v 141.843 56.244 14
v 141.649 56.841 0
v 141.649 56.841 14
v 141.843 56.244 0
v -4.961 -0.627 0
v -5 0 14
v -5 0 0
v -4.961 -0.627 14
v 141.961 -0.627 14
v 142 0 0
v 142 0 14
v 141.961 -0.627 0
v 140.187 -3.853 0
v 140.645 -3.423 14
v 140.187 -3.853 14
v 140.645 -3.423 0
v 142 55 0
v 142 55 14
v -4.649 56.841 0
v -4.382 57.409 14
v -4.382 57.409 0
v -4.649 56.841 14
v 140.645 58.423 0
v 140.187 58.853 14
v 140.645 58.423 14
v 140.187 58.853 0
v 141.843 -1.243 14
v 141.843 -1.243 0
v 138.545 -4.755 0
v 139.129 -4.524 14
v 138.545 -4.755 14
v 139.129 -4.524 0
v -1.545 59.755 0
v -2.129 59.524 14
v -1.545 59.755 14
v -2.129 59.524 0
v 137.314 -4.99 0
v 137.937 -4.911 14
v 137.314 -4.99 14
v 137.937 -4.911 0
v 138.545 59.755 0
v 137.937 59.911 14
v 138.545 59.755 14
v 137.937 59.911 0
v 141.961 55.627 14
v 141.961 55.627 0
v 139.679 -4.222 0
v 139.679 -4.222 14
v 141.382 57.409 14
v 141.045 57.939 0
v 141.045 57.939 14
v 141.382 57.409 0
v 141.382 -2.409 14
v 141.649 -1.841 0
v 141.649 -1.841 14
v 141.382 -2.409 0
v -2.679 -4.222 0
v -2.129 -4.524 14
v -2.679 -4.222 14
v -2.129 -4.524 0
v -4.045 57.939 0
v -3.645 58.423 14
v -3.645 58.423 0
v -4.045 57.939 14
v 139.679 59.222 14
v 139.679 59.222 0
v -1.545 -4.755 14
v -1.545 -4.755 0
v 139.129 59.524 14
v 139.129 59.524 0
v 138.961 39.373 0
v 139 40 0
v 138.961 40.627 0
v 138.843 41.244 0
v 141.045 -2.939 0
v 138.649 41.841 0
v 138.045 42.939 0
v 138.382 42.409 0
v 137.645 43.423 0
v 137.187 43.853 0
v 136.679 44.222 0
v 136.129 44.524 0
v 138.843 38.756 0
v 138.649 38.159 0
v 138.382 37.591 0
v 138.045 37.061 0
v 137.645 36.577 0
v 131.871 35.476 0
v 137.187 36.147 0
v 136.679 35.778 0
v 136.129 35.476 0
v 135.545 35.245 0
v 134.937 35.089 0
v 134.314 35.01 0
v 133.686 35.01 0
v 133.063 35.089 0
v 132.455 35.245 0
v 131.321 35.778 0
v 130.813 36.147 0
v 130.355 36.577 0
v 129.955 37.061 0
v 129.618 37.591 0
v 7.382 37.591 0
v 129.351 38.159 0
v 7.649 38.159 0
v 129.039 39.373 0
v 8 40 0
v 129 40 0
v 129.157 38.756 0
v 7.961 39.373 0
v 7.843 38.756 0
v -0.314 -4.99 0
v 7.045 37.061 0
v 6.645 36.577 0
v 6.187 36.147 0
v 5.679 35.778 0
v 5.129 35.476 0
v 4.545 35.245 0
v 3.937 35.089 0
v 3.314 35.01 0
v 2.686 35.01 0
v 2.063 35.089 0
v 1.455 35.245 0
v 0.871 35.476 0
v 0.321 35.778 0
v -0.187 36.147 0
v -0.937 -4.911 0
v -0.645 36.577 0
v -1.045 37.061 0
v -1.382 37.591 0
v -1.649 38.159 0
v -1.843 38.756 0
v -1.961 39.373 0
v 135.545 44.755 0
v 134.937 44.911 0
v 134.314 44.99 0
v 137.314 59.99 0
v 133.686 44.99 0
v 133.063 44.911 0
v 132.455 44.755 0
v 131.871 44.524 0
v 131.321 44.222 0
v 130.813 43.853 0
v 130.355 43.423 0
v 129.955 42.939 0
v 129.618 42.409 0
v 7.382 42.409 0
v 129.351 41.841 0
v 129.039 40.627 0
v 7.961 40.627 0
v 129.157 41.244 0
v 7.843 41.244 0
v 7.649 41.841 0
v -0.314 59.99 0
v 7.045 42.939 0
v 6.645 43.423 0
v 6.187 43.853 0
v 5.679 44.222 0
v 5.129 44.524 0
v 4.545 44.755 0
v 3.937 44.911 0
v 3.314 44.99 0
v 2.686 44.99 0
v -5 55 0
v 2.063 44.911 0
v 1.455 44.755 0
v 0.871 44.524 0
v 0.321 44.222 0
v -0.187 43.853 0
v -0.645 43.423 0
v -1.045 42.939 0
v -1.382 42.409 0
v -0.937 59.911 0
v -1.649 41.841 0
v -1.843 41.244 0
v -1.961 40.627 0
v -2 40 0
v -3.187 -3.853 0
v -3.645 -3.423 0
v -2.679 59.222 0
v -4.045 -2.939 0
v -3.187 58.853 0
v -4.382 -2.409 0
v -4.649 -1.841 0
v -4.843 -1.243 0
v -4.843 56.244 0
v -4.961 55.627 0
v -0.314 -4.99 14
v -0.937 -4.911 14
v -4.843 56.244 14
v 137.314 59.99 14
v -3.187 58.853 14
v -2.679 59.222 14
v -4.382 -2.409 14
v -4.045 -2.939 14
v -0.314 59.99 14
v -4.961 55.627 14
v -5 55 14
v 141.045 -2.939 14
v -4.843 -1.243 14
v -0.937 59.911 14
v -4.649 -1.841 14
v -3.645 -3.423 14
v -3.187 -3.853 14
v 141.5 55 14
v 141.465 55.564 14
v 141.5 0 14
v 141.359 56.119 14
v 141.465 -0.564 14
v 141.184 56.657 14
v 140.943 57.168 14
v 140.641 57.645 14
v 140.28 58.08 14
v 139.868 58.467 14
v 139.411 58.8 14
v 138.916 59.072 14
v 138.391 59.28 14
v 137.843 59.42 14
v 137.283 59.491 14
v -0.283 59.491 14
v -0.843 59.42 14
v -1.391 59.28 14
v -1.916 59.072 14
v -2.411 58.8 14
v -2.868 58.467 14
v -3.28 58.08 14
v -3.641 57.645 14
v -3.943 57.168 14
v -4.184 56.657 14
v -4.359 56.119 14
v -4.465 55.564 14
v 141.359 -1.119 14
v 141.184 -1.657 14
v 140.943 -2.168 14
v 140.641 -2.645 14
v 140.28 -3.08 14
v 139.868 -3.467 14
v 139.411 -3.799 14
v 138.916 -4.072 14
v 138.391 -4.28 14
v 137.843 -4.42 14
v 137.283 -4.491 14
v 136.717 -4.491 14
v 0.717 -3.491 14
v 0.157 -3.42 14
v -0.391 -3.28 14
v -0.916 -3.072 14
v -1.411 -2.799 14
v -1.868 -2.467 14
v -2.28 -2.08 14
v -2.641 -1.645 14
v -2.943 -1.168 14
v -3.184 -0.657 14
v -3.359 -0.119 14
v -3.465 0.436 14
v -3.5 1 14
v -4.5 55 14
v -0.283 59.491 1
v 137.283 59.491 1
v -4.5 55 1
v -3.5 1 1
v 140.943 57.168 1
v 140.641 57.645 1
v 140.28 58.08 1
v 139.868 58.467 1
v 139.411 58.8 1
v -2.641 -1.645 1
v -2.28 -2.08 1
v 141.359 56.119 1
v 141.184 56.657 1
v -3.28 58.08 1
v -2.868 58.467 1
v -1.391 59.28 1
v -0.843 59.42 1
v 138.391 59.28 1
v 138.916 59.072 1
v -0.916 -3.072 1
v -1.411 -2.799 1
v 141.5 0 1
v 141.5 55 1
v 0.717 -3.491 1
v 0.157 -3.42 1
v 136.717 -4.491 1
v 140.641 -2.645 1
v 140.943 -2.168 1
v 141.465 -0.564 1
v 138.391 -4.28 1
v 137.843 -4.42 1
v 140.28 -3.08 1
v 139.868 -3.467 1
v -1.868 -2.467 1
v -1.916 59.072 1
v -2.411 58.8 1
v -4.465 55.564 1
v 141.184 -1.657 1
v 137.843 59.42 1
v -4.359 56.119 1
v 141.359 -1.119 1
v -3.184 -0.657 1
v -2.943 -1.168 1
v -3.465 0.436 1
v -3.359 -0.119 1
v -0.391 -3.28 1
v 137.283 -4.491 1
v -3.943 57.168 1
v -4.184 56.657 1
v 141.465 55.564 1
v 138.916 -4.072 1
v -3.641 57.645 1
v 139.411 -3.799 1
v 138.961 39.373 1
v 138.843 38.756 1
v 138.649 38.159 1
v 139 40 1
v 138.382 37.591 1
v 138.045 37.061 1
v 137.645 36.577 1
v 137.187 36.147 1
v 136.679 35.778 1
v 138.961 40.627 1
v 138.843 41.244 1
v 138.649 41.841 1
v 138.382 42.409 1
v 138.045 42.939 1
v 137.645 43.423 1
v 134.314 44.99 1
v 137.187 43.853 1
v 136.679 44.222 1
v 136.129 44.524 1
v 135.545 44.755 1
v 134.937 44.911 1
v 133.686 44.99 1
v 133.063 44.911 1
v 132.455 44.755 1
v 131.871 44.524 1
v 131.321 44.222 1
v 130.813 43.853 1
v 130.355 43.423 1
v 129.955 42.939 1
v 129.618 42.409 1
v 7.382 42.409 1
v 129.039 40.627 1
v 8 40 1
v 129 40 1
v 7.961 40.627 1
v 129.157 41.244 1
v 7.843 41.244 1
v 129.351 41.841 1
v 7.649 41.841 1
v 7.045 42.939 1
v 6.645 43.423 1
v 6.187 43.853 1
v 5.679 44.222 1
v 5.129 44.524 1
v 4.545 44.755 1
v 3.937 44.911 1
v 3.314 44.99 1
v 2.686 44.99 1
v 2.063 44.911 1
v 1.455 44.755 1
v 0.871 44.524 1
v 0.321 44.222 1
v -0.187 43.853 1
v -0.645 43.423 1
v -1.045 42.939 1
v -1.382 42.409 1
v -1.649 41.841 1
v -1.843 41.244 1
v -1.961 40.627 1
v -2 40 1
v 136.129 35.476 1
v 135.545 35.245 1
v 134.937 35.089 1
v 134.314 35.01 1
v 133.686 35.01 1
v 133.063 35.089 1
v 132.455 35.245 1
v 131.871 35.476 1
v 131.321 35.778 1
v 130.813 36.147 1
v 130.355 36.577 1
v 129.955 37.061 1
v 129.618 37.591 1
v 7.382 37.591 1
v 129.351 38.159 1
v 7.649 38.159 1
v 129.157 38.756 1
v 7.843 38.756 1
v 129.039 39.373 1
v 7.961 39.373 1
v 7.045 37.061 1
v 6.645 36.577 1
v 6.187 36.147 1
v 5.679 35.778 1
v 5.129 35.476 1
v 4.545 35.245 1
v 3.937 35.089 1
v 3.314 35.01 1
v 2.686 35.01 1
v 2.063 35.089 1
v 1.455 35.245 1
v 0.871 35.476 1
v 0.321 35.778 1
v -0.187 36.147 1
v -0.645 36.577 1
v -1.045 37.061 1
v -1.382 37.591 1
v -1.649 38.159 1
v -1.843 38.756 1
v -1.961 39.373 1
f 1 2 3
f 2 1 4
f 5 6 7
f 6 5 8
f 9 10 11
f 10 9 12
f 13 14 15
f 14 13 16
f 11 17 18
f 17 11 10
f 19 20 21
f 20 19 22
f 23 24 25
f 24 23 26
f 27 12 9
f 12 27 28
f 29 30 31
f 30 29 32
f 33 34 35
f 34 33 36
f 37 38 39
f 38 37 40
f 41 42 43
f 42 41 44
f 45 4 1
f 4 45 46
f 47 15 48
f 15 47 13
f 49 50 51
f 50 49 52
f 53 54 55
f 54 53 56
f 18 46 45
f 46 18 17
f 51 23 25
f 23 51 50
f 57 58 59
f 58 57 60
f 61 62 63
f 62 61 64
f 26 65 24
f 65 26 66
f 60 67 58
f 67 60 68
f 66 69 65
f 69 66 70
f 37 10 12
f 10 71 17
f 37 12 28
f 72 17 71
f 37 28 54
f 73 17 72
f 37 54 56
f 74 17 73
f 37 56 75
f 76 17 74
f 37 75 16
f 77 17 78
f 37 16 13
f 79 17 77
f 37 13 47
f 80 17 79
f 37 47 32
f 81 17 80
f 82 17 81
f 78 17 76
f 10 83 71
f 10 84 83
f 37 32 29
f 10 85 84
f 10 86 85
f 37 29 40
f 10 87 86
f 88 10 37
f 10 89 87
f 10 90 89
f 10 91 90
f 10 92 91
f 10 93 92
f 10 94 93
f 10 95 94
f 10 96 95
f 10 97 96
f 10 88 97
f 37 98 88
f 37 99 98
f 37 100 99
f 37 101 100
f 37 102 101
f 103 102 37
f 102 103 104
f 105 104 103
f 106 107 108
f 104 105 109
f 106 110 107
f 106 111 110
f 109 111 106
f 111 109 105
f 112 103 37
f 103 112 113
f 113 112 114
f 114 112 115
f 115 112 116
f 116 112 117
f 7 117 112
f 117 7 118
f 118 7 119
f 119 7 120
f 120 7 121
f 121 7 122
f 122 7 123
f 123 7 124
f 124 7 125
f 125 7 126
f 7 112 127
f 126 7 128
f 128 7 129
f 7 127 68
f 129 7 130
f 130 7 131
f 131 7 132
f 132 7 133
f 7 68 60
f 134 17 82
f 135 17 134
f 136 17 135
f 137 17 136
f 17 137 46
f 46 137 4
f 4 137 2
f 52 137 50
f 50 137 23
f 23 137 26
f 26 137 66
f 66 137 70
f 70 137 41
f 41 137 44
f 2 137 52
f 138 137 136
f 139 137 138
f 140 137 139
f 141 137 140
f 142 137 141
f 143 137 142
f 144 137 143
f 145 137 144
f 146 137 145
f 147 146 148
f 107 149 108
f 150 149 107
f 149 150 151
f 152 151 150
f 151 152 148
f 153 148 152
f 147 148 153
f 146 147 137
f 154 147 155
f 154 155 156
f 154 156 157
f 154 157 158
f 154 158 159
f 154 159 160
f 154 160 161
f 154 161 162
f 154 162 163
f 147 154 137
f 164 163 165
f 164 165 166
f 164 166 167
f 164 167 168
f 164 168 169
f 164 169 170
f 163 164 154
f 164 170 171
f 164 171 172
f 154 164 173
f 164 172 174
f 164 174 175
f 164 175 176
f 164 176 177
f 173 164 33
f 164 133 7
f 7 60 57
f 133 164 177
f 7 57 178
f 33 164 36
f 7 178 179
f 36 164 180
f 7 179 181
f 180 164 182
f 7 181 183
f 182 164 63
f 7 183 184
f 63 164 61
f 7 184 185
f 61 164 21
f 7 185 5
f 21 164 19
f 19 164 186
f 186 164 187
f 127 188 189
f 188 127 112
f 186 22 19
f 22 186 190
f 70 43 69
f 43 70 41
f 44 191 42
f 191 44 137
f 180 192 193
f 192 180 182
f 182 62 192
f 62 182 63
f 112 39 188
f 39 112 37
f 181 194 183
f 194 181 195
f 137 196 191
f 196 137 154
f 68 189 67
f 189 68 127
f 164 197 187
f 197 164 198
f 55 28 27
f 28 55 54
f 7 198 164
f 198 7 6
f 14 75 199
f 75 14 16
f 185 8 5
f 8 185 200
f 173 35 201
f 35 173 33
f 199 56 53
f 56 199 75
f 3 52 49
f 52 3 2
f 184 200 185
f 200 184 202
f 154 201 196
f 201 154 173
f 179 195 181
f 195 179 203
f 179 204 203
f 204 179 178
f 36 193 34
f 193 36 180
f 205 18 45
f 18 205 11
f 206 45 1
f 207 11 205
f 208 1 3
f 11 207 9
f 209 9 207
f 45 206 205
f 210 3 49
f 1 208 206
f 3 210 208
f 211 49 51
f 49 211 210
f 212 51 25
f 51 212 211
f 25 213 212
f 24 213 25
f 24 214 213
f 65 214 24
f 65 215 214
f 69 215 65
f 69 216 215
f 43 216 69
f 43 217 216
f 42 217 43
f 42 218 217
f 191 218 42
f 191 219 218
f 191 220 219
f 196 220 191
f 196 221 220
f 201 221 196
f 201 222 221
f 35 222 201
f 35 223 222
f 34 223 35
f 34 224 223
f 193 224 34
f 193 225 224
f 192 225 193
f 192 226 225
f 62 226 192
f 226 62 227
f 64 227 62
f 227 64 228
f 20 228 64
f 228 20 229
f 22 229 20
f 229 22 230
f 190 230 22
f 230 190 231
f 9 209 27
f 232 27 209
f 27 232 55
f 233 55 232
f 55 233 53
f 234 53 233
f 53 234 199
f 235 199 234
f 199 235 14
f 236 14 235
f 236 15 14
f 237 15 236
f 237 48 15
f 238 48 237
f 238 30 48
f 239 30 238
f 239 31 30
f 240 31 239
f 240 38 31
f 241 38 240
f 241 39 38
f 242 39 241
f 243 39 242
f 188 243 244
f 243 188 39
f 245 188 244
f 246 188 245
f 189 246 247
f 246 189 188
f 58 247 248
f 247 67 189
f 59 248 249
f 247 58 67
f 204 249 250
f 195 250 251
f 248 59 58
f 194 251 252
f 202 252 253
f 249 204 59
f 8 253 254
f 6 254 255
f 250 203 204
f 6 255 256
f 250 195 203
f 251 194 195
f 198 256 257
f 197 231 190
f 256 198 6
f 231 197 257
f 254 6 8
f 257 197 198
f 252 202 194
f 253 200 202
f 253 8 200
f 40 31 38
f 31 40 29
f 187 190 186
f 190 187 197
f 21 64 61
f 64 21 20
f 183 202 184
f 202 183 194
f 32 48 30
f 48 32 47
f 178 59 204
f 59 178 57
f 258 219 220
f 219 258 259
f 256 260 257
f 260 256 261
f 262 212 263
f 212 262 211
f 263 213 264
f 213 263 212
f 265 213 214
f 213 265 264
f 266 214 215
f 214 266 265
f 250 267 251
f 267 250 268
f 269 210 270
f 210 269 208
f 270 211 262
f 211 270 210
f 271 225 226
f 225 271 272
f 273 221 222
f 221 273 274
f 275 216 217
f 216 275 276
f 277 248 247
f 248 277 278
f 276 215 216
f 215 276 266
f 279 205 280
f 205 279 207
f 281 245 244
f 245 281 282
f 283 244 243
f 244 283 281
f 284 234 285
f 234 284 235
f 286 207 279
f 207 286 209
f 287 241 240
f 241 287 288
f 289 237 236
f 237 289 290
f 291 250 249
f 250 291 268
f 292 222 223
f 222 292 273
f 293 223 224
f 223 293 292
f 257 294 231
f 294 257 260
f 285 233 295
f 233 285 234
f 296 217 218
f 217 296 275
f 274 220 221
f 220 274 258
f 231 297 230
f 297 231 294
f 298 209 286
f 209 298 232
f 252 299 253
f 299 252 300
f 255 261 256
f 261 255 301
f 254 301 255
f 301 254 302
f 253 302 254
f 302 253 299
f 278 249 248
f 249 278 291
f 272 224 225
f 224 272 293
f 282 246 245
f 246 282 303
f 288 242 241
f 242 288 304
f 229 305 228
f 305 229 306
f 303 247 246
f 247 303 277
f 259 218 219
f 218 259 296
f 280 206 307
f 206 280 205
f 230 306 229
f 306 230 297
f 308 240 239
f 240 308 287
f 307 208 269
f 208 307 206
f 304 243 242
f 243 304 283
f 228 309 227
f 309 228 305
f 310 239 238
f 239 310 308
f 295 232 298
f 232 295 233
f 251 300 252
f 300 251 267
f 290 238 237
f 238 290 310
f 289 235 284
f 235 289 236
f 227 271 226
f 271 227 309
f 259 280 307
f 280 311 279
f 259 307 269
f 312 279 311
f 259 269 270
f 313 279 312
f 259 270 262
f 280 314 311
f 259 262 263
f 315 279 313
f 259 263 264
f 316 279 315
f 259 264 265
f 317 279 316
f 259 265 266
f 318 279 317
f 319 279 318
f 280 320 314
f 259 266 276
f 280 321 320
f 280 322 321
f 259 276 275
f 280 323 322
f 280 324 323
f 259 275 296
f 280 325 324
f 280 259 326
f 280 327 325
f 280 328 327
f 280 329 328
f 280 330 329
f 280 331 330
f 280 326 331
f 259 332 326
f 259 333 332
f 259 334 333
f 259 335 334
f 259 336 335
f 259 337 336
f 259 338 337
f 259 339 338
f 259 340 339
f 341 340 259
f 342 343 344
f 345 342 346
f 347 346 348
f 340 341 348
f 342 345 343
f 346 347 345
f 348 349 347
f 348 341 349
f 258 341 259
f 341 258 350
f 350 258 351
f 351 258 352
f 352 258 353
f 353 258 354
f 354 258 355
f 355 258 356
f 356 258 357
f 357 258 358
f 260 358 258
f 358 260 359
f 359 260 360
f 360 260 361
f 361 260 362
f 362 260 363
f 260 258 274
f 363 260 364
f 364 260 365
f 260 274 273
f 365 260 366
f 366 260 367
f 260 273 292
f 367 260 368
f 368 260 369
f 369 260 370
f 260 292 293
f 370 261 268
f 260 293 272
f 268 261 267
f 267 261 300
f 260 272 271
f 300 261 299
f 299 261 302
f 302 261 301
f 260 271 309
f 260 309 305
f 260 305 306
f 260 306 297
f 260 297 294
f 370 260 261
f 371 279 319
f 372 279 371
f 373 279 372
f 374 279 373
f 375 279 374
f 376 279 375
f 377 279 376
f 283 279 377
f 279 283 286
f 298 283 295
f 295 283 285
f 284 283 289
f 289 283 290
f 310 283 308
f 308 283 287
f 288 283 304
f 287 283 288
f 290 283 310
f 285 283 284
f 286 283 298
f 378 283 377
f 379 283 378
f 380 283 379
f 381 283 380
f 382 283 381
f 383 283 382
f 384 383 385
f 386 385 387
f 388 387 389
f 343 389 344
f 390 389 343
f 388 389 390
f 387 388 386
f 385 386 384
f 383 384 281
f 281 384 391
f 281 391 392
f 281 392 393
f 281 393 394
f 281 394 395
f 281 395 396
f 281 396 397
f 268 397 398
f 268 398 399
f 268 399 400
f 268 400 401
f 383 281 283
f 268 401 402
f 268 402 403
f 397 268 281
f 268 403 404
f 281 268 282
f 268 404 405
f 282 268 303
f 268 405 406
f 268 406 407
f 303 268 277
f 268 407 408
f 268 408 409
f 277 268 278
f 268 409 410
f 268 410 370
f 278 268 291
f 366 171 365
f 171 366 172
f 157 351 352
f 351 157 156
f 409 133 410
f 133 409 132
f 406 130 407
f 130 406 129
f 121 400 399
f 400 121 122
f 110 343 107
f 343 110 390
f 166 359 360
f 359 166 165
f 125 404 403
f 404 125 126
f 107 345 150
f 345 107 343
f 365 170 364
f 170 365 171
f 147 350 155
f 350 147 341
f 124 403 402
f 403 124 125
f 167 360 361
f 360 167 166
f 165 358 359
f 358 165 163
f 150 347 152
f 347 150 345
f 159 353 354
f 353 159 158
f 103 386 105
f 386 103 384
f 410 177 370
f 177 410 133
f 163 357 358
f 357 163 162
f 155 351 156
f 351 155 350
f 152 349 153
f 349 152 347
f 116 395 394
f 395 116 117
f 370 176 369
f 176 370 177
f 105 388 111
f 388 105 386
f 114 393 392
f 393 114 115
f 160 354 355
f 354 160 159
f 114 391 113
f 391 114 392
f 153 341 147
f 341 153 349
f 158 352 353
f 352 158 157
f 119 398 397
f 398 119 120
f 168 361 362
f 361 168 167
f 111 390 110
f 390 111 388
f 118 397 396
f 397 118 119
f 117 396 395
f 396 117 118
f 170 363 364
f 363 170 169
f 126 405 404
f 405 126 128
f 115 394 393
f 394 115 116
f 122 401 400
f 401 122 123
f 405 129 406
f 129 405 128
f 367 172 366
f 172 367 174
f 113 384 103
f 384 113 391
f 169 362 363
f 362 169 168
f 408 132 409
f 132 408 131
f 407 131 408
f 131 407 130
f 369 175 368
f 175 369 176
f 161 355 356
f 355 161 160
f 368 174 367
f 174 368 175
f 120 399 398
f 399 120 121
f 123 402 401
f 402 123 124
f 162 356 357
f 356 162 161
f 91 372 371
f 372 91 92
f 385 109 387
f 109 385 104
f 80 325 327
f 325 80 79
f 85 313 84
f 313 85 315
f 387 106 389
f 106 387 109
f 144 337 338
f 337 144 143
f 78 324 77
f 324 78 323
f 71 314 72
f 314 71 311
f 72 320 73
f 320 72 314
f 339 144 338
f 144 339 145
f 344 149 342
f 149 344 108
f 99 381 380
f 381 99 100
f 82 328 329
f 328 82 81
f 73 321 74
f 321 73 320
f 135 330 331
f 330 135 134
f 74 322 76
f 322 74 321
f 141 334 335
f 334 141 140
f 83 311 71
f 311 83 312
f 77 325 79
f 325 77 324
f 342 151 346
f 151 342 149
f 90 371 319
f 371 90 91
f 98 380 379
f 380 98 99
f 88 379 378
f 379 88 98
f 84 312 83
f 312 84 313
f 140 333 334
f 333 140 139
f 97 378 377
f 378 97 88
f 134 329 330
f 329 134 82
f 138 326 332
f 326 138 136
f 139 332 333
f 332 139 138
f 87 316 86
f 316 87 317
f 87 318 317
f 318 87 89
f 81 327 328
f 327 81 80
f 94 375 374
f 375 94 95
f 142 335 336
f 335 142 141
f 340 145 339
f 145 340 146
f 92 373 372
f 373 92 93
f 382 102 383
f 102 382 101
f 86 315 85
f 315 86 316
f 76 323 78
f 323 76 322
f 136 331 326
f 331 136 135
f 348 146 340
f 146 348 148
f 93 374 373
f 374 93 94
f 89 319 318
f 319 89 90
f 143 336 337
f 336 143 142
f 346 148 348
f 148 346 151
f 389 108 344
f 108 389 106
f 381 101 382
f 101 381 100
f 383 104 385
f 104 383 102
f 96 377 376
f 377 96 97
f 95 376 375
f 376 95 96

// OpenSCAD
// glasses case
// interior dims
$fn=50;
xx=147;
yy=65;
zz=14;
ww=1;
ff=1;
dd=10;

module unit0() {
  difference() {
    cube([xx+2*ww,yy+2*ww,zz+ww]);
    translate([ww,ww,ff]) cube([xx,yy,zz]);
  }
}

module unit() {
  difference() {
    hull() {
      cylinder(zz,d=dd);
      translate([0,yy-dd,0]) cylinder(zz,d=dd);
      translate([xx-dd,yy-dd,0]) cylinder(zz,d=dd);
      translate([xx-dd,0,0]) cylinder(zz,d=dd);
    }
    translate([ww,ww,ff]) hull() {
      cylinder(zz,d=dd-ww);
      translate([0-ww,yy-dd-ww,0]) cylinder(zz,d=dd-ww);
      translate([xx-dd-ww,yy-dd-ww,0]) cylinder(zz,d=dd-ww);
      translate([xx-dd-ww,0-ww,0]) cylinder(zz,d=dd-ww);
    }
    hole=10;
    #translate([2+ww,40,0]) cylinder(zz,d=hole);
    #translate([xx-hole-2-ww,40,0]) cylinder(zz,d=hole);
  }
}


unit();
